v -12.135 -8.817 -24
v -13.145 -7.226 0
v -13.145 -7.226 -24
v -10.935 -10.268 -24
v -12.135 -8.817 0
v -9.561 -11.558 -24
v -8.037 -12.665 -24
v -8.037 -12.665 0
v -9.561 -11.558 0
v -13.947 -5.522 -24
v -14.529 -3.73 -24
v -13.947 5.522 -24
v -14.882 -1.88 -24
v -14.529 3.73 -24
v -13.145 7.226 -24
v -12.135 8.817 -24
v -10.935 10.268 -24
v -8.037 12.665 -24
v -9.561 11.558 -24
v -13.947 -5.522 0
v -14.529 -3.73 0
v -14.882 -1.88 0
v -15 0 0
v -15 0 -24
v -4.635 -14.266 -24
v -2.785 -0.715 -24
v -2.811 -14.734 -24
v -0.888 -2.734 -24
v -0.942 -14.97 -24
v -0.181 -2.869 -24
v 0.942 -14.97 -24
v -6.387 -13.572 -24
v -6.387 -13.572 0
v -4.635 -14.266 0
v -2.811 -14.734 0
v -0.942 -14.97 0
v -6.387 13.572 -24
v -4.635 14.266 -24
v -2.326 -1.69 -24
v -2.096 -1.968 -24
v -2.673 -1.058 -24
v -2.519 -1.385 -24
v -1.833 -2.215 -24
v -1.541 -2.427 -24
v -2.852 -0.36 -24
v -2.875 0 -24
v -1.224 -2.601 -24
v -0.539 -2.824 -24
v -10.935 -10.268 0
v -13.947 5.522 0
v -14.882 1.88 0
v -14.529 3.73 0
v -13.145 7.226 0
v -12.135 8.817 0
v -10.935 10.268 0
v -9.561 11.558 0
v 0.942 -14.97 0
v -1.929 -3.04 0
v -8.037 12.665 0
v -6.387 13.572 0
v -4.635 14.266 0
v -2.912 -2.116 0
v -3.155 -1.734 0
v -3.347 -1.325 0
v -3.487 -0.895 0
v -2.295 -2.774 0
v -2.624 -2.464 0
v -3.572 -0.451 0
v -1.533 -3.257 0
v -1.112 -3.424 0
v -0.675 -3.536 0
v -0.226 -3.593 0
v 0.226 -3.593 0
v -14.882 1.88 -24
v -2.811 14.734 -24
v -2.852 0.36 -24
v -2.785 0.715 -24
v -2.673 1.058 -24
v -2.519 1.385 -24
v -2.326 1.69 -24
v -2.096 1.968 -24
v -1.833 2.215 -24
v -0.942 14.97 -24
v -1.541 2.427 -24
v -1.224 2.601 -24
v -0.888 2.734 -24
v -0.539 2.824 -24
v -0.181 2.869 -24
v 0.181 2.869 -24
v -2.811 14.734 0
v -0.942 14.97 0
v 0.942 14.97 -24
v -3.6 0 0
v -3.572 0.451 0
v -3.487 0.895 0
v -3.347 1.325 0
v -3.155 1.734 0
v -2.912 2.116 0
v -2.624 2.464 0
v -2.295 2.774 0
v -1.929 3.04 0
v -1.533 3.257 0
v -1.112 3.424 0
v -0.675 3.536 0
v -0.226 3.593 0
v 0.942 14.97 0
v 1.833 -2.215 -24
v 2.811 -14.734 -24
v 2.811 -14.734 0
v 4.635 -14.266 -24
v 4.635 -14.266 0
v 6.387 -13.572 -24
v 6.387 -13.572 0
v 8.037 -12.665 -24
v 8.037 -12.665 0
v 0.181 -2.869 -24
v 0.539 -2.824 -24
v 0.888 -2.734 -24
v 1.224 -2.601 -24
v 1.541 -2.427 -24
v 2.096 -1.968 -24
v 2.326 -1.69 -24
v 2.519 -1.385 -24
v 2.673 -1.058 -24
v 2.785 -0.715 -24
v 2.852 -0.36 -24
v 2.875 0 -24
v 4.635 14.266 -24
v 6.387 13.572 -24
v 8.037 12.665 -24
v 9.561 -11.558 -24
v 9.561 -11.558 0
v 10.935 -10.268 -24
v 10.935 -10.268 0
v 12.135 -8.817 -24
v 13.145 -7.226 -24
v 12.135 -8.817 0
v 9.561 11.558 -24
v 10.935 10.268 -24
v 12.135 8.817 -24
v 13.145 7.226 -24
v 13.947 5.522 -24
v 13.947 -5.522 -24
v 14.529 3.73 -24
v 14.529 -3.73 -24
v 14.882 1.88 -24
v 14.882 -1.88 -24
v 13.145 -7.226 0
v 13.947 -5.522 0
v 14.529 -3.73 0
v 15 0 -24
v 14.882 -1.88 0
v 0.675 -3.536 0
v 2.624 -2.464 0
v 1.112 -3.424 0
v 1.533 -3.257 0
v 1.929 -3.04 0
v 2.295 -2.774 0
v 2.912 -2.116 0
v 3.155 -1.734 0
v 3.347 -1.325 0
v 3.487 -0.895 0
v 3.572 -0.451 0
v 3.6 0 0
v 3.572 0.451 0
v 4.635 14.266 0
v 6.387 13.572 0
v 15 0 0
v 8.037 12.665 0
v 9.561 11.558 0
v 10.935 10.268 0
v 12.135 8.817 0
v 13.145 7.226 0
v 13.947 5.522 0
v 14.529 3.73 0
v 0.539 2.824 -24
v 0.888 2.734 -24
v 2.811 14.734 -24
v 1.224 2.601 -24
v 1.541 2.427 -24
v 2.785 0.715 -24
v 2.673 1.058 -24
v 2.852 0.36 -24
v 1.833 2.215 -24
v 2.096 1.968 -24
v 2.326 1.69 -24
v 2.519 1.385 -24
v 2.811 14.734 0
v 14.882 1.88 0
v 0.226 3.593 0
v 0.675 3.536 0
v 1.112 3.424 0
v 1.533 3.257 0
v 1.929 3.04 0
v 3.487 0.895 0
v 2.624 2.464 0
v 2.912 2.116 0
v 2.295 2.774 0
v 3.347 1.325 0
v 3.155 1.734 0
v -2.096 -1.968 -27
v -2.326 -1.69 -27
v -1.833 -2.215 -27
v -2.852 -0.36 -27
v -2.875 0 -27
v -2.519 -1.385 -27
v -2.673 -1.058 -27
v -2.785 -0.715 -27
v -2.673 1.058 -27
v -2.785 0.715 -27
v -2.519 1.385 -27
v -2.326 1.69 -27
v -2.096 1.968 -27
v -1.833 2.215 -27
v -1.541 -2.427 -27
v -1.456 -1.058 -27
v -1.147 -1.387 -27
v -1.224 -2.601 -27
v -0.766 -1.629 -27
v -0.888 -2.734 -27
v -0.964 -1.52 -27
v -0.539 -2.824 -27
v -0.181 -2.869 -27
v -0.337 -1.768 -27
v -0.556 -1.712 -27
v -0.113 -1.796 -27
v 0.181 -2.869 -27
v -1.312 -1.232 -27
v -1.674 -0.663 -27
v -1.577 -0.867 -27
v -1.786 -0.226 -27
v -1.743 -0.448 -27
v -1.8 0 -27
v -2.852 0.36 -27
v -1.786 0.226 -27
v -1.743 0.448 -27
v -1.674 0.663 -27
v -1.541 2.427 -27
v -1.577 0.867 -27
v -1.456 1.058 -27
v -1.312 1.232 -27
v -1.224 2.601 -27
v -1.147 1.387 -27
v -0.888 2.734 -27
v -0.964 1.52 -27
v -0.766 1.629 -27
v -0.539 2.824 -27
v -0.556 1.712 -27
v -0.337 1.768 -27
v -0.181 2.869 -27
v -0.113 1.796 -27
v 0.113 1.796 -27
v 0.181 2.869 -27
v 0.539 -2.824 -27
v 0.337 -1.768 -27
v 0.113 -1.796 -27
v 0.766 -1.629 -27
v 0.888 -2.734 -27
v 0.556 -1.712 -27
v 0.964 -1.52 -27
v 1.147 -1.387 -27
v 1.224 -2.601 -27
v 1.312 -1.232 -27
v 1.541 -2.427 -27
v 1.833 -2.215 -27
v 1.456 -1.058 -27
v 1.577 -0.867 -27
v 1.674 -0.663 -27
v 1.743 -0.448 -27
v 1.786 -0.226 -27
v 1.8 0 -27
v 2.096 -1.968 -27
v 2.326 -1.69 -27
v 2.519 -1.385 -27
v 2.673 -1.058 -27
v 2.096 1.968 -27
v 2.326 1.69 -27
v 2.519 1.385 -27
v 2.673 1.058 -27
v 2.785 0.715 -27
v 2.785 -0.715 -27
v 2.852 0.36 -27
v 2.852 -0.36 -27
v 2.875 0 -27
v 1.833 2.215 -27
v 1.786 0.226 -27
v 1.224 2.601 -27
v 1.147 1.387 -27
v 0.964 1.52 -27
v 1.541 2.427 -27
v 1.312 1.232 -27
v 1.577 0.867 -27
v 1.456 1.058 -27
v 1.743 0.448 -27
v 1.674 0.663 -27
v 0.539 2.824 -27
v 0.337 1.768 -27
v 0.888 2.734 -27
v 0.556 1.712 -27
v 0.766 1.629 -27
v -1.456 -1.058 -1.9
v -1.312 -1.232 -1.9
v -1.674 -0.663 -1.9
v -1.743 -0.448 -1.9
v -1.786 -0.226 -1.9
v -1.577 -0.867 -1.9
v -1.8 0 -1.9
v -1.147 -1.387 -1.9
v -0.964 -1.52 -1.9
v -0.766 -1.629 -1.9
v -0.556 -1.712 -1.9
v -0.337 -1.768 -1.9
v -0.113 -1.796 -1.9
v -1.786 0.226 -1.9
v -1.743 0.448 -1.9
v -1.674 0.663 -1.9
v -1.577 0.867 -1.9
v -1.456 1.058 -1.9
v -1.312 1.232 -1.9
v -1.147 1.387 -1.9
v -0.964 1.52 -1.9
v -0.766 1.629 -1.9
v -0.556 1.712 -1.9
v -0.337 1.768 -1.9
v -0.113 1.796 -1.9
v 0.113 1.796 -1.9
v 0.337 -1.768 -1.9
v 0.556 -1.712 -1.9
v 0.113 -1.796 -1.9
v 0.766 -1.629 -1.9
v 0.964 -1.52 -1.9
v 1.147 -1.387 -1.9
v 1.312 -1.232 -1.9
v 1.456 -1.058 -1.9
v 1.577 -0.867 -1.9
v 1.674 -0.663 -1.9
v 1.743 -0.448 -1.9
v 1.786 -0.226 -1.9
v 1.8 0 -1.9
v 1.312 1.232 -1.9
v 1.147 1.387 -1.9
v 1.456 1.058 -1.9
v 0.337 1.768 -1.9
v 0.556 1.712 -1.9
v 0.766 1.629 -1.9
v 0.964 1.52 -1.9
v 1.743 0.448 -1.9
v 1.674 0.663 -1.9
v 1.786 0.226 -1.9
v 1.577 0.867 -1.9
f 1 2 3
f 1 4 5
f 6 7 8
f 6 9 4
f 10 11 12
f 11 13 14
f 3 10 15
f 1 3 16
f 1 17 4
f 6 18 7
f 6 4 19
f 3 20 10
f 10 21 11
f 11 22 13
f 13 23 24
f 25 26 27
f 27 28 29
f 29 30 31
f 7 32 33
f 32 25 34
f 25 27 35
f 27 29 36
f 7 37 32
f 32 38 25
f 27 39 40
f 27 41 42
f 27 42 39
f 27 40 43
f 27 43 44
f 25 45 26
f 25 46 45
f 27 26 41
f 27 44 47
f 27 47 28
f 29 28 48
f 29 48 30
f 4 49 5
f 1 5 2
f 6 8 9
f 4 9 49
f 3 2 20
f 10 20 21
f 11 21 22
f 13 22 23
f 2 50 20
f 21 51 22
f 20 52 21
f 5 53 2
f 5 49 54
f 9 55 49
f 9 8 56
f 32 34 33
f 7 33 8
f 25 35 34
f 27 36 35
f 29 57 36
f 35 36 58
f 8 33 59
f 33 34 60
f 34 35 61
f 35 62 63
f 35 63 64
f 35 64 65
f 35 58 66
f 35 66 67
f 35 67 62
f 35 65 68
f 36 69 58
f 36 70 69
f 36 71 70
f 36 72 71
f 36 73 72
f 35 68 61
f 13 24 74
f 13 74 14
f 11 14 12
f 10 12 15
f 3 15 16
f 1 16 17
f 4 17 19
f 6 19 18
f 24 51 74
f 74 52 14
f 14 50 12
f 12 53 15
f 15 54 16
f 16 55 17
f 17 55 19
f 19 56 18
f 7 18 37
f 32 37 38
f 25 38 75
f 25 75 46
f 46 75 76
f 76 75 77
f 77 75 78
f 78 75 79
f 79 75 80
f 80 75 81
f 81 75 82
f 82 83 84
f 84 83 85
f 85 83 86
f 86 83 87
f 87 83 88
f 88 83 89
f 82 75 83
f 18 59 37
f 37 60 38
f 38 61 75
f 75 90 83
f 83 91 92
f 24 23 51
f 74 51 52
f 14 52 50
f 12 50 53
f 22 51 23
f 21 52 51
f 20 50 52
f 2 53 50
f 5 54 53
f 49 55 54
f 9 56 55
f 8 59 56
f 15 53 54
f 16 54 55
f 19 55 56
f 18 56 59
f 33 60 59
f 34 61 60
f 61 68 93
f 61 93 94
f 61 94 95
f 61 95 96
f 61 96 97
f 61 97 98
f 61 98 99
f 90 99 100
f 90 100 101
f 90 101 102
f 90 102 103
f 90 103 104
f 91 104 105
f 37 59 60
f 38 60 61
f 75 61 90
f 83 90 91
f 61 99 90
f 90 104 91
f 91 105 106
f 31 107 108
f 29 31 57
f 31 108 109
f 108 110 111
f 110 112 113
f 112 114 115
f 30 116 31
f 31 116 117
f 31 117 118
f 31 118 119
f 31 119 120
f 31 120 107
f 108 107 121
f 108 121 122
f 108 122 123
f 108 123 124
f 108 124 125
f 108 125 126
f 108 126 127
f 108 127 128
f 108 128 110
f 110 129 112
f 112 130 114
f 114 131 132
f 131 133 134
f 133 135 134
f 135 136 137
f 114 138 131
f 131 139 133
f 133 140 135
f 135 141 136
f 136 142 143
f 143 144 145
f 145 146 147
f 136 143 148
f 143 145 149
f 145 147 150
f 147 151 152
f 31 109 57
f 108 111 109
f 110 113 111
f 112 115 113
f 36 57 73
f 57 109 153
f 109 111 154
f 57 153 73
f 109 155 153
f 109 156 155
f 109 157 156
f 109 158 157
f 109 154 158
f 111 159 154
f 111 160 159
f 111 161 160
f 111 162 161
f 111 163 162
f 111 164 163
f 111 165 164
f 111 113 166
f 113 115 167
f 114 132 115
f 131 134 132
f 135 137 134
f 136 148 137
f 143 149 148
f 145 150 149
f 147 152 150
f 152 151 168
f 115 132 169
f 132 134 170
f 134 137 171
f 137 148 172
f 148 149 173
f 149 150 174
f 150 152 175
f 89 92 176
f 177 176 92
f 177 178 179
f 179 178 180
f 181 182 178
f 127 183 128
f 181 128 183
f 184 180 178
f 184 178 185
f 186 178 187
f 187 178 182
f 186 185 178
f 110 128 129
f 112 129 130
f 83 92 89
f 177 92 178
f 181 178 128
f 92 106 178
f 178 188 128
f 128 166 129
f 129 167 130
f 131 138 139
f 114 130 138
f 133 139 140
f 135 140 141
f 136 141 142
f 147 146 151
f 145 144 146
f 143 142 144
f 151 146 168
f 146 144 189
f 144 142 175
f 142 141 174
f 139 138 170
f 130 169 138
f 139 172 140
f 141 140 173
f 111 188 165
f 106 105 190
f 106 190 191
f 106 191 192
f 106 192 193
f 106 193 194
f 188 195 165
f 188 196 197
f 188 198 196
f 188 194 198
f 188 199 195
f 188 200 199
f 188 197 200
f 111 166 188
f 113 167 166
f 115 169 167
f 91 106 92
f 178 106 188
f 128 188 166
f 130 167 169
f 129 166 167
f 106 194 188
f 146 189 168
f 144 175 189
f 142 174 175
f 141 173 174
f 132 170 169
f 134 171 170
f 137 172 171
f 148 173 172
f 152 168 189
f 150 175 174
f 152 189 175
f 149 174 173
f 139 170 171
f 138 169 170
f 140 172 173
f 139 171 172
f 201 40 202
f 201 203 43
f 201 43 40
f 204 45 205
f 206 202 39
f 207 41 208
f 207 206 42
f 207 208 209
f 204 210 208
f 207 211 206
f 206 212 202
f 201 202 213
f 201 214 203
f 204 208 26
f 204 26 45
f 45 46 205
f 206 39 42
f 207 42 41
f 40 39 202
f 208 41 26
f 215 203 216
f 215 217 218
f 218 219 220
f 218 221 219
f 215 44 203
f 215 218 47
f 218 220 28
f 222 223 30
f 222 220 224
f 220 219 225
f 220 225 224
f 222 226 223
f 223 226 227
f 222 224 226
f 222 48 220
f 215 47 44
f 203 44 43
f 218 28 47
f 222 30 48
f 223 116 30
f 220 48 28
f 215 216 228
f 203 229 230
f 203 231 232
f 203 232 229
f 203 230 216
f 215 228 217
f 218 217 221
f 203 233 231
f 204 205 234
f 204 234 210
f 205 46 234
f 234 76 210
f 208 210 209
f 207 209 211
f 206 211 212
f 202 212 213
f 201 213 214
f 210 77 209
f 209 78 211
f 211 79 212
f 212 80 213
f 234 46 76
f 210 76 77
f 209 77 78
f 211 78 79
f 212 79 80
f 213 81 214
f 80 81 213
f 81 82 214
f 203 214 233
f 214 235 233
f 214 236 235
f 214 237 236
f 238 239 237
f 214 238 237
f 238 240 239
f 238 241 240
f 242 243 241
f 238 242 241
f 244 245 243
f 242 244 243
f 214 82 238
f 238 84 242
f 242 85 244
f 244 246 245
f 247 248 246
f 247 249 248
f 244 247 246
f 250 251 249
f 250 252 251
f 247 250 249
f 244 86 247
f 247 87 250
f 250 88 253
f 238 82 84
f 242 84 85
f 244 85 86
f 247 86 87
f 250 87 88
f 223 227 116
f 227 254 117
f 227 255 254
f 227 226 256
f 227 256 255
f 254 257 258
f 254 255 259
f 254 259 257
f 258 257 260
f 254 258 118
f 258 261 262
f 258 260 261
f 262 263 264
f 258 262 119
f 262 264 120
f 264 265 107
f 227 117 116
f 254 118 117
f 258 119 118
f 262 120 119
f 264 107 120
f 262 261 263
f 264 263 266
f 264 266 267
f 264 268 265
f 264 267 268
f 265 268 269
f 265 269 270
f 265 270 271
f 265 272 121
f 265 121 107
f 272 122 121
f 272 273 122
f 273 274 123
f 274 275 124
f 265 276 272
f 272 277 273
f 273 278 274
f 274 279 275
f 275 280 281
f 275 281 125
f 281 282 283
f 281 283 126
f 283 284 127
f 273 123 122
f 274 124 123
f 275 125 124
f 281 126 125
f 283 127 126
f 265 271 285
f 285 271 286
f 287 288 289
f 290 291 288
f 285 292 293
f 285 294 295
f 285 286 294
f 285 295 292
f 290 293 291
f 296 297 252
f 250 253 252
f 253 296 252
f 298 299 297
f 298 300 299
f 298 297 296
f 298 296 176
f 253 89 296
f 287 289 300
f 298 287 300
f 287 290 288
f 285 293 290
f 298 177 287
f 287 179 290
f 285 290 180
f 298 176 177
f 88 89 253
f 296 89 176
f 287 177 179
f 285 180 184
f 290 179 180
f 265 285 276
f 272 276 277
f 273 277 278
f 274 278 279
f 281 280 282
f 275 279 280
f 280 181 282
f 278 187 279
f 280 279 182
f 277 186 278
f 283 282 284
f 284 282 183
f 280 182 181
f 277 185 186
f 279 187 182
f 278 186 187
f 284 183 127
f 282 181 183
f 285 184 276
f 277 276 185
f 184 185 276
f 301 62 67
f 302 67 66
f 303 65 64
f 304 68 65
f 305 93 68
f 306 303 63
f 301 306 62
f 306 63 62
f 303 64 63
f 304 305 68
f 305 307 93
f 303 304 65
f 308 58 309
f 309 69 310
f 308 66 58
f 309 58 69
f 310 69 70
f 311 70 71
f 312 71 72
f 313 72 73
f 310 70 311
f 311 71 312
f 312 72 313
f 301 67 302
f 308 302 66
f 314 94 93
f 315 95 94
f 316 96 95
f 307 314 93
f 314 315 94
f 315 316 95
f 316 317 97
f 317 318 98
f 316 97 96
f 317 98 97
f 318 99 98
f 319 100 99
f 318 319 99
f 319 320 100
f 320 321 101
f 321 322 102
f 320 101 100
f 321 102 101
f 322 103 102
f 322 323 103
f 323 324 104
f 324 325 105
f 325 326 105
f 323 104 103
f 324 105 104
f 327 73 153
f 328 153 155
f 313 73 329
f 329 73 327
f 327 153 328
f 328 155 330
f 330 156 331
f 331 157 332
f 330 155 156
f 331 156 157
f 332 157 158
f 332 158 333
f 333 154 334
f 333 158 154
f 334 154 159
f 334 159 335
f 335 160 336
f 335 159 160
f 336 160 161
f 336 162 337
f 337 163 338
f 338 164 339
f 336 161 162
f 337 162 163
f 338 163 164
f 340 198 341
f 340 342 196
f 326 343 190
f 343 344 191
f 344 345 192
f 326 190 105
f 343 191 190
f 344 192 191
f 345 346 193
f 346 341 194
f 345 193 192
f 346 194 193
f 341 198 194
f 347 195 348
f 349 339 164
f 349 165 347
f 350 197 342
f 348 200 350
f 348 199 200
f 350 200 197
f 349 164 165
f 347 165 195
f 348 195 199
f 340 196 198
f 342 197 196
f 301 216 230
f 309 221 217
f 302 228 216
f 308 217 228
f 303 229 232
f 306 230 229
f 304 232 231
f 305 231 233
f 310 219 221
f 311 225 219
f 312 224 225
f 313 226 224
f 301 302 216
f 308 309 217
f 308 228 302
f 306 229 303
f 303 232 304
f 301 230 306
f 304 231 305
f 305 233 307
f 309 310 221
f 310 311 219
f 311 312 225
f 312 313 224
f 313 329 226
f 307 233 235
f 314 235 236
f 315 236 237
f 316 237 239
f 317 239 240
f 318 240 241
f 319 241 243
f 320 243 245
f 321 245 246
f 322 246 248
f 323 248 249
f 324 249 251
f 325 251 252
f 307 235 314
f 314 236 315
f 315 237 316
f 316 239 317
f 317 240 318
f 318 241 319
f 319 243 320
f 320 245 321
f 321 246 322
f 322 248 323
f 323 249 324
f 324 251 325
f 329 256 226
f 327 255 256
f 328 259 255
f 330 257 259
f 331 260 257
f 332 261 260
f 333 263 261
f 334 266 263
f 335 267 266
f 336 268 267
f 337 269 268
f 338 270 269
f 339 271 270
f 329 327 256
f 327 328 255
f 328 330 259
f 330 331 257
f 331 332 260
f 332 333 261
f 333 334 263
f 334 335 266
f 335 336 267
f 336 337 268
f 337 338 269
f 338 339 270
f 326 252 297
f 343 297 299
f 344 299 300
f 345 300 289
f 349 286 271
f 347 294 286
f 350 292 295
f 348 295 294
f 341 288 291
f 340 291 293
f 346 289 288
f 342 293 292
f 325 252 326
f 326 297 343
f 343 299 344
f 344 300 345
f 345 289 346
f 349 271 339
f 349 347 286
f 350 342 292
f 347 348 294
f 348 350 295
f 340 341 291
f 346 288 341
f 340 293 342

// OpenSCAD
$fn = 50;

difference() {
	union() {
		translate(v = [0, 0, -24.0]) {
			cylinder(h = 24, r = 15.0);
		}
		#translate(v = [0, 0, -27.0]) {
			cylinder(h = 27, r = 2.875);
		}
	}
	union() {
		translate(v = [0, 0, 0]) {
			rotate(a = [0, 0, 0]) {
				difference() {
					union() {
						translate(v = [0, 0, -27.0]) {
							cylinder(h = 27, r = 1.5);
						}
						translate(v = [0, 0, -1.9]) {
							cylinder(h = 1.9, r1 = 1.8, r2 = 3.6);
						}
						translate(v = [0, 0, -27.0]) {
							cylinder(h = 27, r = 1.8);
						}
						translate(v = [0, 0, -27.0]) {
							cylinder(h = 27, r = 1.5);
						}
					}
					union();
				}
			}
		}
	}
}
